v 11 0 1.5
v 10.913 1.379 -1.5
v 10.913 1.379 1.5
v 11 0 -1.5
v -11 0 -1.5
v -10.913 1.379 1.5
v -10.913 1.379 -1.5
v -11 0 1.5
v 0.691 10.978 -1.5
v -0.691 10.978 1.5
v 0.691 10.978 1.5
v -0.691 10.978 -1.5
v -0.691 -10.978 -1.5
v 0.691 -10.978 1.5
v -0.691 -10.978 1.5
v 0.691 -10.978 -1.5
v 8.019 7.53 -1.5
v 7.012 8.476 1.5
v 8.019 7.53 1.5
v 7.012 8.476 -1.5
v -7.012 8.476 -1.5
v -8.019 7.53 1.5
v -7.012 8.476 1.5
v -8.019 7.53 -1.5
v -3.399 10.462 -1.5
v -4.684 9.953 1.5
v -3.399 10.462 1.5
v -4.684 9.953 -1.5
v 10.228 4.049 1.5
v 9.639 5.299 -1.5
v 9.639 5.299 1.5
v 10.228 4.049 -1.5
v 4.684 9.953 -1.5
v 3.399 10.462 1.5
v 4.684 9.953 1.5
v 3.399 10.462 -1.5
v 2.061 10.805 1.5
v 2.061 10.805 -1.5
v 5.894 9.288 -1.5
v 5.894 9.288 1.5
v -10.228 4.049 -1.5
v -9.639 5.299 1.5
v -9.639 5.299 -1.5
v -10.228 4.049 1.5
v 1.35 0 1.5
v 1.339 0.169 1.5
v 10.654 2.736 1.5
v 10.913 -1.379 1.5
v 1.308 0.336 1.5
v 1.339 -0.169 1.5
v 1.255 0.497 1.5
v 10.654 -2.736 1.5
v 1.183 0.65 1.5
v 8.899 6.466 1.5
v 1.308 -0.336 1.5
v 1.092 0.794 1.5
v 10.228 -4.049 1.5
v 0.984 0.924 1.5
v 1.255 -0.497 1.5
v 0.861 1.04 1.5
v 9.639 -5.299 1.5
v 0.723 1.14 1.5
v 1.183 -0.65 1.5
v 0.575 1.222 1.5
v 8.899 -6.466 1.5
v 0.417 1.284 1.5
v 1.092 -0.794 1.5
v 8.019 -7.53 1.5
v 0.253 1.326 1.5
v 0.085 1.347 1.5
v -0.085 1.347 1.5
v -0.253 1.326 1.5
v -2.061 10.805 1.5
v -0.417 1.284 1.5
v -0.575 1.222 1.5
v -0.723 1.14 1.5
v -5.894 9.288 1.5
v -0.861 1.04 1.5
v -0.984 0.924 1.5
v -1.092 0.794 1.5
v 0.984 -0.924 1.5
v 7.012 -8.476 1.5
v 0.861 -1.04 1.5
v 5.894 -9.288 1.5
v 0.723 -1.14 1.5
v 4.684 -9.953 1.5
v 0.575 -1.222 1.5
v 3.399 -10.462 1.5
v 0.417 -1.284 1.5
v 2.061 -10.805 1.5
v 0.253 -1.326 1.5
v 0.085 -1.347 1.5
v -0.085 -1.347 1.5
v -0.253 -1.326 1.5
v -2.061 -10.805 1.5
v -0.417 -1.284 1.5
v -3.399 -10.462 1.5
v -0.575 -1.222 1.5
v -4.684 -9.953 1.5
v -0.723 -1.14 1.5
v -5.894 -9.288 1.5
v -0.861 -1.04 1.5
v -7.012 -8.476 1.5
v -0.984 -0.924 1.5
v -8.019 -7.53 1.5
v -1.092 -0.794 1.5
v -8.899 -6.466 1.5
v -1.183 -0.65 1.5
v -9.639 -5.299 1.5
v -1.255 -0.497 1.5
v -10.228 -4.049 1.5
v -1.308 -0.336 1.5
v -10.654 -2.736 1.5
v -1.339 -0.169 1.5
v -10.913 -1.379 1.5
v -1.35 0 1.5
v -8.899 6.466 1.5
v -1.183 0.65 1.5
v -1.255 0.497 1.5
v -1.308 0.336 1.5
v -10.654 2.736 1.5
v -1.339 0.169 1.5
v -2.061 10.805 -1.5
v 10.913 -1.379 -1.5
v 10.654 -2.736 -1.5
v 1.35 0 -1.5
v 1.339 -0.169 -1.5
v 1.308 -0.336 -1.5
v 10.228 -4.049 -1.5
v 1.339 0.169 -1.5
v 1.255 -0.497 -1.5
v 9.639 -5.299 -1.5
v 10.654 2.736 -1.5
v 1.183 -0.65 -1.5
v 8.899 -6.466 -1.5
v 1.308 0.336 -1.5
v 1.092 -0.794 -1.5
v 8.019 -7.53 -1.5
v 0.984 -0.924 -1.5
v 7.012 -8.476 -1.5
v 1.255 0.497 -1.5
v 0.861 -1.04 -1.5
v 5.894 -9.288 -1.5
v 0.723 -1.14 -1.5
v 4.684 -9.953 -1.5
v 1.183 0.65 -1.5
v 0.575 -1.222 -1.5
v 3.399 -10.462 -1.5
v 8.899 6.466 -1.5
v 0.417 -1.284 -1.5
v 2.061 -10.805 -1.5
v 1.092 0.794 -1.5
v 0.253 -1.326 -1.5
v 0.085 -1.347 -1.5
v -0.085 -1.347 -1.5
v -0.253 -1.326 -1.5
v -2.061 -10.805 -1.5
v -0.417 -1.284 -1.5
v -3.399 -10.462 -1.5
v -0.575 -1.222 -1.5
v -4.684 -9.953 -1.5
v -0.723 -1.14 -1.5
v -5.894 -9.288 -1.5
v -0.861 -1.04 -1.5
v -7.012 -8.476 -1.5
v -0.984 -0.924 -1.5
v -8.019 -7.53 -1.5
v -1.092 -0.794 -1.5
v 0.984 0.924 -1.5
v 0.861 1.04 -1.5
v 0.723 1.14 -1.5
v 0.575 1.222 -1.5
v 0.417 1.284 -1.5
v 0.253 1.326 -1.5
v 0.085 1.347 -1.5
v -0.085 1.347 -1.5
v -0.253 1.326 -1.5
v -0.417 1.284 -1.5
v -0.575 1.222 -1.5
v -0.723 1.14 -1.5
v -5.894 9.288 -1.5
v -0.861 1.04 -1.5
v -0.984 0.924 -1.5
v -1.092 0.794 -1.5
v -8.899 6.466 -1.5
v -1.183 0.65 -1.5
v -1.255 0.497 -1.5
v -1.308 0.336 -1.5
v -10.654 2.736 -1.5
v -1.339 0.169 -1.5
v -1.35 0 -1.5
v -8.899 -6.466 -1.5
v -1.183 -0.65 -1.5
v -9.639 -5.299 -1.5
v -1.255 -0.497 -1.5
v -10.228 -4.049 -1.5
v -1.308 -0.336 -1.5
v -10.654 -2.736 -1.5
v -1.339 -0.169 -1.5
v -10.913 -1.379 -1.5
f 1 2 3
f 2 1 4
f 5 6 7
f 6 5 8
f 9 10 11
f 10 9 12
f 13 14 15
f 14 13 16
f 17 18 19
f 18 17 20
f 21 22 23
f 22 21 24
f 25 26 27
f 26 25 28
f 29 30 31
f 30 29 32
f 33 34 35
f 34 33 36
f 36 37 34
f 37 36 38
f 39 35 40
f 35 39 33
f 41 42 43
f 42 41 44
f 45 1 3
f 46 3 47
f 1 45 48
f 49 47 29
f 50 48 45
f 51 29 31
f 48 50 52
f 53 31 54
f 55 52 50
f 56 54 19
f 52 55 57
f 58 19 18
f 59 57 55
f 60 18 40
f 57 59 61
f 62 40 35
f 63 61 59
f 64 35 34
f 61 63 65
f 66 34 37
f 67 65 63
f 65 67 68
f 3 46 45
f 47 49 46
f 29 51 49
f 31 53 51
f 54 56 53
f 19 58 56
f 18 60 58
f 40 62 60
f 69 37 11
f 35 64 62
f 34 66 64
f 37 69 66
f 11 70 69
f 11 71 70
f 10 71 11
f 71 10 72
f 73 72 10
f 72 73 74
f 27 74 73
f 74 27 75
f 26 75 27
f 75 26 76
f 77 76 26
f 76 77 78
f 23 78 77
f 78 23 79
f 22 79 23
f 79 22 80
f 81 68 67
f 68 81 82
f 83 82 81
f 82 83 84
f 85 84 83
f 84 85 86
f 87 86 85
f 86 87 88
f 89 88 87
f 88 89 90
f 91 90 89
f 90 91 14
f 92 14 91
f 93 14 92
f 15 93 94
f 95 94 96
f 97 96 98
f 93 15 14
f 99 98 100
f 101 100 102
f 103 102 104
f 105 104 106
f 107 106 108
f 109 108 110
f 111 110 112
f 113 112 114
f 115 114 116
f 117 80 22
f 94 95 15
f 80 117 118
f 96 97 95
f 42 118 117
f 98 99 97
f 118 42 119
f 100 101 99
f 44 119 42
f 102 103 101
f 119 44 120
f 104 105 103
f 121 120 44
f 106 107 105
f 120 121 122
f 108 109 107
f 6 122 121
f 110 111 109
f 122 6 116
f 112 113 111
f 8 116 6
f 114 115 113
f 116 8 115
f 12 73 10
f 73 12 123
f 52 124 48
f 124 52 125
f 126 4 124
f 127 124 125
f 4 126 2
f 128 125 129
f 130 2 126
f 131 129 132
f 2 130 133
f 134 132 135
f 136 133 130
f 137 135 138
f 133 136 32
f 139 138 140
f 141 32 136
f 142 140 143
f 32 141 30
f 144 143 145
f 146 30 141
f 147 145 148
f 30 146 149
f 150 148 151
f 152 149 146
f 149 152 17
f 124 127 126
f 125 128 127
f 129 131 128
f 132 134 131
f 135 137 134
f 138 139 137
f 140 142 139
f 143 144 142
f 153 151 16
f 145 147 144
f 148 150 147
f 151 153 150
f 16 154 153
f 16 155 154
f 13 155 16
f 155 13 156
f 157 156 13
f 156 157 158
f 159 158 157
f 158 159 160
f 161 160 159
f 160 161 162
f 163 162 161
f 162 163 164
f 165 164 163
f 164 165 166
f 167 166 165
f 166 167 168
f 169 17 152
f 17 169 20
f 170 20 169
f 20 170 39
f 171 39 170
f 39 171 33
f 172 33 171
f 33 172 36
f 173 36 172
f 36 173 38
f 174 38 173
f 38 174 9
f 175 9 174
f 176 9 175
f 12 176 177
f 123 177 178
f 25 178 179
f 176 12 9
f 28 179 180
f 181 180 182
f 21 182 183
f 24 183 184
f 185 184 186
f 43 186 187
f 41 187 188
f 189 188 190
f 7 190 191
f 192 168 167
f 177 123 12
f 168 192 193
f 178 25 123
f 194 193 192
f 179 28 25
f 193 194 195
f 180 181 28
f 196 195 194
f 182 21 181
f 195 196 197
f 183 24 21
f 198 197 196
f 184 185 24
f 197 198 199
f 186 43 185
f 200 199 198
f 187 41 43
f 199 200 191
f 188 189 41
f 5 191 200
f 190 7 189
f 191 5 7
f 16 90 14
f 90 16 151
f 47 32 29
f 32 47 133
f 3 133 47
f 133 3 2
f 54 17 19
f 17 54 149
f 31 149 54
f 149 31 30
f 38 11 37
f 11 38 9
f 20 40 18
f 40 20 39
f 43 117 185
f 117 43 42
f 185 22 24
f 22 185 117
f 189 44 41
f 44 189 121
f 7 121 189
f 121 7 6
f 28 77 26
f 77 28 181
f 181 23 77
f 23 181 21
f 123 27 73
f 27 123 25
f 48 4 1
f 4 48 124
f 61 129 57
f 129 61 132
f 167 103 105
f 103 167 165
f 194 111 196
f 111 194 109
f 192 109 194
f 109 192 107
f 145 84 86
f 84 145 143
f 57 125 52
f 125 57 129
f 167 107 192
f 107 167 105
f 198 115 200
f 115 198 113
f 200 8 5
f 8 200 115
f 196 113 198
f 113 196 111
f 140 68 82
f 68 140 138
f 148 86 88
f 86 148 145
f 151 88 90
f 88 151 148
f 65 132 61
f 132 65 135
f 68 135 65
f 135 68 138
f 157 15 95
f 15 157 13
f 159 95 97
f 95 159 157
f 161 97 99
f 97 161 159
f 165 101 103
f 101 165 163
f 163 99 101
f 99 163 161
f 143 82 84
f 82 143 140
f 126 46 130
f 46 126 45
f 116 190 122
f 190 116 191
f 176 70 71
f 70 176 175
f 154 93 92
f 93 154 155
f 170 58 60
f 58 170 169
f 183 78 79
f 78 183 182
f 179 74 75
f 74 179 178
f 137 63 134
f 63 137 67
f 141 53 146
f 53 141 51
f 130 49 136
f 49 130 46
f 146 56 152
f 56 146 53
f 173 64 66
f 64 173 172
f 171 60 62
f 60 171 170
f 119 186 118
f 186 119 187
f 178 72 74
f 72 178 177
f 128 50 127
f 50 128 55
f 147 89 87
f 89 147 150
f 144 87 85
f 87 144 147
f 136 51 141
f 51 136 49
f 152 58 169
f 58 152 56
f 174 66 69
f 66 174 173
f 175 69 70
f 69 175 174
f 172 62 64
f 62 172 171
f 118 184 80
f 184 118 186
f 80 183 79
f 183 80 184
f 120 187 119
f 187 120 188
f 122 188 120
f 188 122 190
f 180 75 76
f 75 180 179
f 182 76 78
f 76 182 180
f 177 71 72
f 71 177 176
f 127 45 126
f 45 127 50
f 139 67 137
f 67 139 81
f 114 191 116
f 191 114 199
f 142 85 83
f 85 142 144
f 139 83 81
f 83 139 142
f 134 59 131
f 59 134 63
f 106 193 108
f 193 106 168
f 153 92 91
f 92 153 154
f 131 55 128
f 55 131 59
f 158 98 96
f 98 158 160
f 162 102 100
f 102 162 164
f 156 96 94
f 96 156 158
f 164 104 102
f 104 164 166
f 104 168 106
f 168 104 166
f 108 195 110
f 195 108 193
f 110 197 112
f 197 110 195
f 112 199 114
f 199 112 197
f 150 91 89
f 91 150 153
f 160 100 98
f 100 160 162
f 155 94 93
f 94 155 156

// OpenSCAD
$fn = 50;


difference() {
	union() {
		translate(v = [0, 0, -1.5000000000]) {
			cylinder(h = 3, r = 11.0000000000);
		}
	}
	union() {
		translate(v = [0, 0, -100.0000000000]) {
			cylinder(h = 200, r = 1.3500000000);
		}
	}
}
